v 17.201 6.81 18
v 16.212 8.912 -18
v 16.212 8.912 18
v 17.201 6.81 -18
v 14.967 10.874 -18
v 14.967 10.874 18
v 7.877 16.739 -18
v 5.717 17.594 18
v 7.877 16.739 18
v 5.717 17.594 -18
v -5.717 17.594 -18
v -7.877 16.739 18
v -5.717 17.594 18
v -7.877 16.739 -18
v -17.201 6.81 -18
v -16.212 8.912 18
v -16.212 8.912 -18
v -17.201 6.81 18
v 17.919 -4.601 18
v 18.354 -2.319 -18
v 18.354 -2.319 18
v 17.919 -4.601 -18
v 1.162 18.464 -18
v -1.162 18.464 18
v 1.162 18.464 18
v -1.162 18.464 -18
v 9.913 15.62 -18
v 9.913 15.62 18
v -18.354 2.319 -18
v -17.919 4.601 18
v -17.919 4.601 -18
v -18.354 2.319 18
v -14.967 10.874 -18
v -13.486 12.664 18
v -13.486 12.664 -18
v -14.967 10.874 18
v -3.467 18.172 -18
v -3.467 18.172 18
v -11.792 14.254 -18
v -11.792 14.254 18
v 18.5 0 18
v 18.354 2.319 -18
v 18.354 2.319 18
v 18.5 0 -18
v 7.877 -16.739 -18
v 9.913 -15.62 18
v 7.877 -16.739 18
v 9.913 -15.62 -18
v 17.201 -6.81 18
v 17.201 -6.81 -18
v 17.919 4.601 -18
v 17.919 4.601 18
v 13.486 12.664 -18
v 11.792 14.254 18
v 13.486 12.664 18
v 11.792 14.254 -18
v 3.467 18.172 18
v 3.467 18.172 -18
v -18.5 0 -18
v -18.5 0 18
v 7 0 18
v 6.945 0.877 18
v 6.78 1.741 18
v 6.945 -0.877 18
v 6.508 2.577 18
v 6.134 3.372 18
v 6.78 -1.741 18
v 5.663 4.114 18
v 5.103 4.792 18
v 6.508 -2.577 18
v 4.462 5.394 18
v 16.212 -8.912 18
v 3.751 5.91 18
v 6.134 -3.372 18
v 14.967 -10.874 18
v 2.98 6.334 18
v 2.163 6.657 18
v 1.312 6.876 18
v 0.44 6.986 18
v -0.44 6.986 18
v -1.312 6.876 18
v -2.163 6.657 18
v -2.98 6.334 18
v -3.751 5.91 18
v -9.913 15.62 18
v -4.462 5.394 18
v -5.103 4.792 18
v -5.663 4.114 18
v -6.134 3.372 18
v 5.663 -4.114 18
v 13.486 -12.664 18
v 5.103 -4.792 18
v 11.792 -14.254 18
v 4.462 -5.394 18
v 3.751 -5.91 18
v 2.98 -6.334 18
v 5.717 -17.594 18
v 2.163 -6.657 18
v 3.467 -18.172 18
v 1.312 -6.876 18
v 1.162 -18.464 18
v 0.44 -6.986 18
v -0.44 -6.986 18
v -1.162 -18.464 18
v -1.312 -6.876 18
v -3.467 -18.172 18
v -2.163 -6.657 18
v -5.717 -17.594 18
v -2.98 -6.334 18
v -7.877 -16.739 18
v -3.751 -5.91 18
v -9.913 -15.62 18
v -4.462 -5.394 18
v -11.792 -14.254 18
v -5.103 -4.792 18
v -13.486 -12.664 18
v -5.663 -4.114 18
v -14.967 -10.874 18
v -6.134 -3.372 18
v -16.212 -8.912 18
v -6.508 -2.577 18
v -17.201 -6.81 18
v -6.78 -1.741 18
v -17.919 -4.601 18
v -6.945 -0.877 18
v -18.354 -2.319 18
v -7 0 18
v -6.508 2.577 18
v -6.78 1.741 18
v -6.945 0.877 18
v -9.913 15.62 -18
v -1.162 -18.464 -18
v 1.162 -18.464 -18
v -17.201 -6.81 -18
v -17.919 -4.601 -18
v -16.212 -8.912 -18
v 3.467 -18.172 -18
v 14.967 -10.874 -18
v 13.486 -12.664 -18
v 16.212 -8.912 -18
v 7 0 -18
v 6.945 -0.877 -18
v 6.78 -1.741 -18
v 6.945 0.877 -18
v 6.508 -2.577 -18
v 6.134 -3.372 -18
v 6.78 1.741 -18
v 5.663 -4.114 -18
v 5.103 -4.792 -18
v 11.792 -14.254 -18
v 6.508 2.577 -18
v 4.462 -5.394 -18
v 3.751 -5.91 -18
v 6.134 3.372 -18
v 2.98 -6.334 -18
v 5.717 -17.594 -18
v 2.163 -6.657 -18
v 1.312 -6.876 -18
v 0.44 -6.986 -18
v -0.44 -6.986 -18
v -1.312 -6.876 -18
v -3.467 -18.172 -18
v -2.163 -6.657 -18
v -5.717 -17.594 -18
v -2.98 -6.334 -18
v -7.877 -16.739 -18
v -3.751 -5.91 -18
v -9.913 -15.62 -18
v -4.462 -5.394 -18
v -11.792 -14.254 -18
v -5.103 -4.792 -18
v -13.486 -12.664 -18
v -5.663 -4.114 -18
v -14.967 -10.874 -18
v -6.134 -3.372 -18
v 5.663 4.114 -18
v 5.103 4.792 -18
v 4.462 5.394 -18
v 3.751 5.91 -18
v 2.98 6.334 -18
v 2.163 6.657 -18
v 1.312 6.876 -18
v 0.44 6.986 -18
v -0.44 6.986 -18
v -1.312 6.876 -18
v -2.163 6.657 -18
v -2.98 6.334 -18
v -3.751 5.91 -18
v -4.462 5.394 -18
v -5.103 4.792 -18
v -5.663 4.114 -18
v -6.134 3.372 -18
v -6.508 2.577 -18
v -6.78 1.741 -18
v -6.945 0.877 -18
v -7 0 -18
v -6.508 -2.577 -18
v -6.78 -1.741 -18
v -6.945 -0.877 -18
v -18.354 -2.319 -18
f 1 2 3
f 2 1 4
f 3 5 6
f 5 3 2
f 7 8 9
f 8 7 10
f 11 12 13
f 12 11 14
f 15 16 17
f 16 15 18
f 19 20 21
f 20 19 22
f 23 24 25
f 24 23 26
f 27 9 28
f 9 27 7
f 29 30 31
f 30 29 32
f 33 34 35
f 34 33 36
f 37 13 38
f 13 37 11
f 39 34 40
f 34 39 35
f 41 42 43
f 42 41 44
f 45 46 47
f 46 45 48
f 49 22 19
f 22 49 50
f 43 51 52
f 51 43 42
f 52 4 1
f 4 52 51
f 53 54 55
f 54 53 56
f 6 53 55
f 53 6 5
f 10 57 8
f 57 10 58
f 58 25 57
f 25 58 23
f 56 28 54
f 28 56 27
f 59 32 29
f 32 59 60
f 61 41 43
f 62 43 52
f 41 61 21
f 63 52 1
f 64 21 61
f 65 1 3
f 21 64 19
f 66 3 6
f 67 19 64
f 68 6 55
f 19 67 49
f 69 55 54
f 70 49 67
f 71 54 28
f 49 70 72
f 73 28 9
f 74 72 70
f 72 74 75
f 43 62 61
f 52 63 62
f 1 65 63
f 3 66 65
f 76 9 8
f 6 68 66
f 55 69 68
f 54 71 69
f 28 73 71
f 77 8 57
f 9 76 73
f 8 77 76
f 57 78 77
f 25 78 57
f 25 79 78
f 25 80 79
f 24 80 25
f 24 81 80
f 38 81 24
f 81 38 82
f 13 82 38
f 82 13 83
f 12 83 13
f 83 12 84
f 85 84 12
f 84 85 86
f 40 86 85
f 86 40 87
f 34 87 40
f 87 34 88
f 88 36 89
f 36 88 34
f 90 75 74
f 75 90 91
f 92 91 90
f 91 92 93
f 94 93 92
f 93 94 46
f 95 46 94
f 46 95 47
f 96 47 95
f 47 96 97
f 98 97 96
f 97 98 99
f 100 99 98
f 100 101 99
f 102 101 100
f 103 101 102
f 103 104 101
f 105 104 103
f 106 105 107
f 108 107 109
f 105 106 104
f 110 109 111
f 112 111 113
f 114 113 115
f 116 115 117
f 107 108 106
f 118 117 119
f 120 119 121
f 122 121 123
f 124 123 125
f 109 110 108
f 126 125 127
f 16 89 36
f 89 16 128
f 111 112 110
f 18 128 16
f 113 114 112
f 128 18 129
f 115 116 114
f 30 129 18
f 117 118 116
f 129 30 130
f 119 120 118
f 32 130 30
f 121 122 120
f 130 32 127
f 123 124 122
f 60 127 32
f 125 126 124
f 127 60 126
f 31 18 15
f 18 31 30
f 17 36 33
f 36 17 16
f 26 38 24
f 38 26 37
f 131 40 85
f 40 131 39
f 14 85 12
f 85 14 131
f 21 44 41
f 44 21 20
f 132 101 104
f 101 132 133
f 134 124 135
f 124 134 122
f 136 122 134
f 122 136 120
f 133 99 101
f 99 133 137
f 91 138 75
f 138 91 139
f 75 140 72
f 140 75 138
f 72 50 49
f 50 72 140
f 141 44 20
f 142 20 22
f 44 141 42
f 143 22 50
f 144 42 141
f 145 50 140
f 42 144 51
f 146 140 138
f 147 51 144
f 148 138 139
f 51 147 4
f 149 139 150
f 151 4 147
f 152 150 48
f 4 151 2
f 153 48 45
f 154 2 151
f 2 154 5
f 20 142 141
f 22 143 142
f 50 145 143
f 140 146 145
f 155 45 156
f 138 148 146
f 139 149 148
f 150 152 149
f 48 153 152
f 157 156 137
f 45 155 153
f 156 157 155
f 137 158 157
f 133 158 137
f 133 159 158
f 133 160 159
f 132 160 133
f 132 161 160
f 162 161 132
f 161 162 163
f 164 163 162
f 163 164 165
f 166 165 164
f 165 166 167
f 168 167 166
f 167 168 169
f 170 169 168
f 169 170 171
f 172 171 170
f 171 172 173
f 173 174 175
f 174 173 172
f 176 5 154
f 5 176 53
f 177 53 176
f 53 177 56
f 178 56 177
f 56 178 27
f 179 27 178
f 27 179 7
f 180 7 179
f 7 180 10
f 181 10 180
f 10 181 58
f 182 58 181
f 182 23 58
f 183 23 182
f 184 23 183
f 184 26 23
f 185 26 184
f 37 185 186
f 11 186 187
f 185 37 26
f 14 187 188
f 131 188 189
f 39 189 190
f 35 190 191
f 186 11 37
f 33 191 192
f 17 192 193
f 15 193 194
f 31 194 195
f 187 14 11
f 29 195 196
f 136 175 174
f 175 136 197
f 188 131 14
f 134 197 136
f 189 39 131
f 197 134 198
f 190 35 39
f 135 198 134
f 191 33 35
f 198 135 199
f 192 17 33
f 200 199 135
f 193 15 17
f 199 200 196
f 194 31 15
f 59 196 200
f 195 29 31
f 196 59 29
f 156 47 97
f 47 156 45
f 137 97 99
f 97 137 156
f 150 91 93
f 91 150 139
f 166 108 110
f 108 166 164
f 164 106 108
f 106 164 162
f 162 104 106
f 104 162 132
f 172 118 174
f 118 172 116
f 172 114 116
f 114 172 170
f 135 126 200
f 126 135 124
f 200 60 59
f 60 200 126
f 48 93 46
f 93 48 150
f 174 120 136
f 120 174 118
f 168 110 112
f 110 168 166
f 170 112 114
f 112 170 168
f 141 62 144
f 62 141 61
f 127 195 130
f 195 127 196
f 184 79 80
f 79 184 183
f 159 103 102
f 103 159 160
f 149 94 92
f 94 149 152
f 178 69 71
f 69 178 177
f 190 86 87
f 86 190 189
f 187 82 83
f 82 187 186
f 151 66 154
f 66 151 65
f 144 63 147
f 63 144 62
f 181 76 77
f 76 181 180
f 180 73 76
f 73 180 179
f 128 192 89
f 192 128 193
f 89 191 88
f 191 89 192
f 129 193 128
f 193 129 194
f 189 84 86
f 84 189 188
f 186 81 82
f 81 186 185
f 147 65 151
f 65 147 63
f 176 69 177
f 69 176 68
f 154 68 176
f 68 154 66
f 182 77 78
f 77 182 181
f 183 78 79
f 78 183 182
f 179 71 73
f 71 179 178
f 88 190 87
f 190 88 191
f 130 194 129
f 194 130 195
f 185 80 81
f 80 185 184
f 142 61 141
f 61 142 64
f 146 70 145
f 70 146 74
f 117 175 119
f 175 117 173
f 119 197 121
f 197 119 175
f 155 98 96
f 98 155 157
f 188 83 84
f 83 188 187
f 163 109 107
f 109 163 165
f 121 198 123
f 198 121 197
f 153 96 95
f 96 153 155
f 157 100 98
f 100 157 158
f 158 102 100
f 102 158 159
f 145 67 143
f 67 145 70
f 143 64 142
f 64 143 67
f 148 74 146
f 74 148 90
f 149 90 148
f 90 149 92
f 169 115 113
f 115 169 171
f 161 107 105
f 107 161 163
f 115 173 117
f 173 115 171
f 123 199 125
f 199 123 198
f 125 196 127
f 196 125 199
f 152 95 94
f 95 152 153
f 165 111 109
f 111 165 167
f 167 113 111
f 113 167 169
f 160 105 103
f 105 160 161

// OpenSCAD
$fn = 50;


difference() {
	union() {
		translate(v = [0, 0, -18.0000000000]) {
			cylinder(h = 36, r = 18.5000000000);
		}
	}
	union() {
		translate(v = [0, 0, -100.0000000000]) {
			cylinder(h = 200, r = 7);
		}
	}
}
